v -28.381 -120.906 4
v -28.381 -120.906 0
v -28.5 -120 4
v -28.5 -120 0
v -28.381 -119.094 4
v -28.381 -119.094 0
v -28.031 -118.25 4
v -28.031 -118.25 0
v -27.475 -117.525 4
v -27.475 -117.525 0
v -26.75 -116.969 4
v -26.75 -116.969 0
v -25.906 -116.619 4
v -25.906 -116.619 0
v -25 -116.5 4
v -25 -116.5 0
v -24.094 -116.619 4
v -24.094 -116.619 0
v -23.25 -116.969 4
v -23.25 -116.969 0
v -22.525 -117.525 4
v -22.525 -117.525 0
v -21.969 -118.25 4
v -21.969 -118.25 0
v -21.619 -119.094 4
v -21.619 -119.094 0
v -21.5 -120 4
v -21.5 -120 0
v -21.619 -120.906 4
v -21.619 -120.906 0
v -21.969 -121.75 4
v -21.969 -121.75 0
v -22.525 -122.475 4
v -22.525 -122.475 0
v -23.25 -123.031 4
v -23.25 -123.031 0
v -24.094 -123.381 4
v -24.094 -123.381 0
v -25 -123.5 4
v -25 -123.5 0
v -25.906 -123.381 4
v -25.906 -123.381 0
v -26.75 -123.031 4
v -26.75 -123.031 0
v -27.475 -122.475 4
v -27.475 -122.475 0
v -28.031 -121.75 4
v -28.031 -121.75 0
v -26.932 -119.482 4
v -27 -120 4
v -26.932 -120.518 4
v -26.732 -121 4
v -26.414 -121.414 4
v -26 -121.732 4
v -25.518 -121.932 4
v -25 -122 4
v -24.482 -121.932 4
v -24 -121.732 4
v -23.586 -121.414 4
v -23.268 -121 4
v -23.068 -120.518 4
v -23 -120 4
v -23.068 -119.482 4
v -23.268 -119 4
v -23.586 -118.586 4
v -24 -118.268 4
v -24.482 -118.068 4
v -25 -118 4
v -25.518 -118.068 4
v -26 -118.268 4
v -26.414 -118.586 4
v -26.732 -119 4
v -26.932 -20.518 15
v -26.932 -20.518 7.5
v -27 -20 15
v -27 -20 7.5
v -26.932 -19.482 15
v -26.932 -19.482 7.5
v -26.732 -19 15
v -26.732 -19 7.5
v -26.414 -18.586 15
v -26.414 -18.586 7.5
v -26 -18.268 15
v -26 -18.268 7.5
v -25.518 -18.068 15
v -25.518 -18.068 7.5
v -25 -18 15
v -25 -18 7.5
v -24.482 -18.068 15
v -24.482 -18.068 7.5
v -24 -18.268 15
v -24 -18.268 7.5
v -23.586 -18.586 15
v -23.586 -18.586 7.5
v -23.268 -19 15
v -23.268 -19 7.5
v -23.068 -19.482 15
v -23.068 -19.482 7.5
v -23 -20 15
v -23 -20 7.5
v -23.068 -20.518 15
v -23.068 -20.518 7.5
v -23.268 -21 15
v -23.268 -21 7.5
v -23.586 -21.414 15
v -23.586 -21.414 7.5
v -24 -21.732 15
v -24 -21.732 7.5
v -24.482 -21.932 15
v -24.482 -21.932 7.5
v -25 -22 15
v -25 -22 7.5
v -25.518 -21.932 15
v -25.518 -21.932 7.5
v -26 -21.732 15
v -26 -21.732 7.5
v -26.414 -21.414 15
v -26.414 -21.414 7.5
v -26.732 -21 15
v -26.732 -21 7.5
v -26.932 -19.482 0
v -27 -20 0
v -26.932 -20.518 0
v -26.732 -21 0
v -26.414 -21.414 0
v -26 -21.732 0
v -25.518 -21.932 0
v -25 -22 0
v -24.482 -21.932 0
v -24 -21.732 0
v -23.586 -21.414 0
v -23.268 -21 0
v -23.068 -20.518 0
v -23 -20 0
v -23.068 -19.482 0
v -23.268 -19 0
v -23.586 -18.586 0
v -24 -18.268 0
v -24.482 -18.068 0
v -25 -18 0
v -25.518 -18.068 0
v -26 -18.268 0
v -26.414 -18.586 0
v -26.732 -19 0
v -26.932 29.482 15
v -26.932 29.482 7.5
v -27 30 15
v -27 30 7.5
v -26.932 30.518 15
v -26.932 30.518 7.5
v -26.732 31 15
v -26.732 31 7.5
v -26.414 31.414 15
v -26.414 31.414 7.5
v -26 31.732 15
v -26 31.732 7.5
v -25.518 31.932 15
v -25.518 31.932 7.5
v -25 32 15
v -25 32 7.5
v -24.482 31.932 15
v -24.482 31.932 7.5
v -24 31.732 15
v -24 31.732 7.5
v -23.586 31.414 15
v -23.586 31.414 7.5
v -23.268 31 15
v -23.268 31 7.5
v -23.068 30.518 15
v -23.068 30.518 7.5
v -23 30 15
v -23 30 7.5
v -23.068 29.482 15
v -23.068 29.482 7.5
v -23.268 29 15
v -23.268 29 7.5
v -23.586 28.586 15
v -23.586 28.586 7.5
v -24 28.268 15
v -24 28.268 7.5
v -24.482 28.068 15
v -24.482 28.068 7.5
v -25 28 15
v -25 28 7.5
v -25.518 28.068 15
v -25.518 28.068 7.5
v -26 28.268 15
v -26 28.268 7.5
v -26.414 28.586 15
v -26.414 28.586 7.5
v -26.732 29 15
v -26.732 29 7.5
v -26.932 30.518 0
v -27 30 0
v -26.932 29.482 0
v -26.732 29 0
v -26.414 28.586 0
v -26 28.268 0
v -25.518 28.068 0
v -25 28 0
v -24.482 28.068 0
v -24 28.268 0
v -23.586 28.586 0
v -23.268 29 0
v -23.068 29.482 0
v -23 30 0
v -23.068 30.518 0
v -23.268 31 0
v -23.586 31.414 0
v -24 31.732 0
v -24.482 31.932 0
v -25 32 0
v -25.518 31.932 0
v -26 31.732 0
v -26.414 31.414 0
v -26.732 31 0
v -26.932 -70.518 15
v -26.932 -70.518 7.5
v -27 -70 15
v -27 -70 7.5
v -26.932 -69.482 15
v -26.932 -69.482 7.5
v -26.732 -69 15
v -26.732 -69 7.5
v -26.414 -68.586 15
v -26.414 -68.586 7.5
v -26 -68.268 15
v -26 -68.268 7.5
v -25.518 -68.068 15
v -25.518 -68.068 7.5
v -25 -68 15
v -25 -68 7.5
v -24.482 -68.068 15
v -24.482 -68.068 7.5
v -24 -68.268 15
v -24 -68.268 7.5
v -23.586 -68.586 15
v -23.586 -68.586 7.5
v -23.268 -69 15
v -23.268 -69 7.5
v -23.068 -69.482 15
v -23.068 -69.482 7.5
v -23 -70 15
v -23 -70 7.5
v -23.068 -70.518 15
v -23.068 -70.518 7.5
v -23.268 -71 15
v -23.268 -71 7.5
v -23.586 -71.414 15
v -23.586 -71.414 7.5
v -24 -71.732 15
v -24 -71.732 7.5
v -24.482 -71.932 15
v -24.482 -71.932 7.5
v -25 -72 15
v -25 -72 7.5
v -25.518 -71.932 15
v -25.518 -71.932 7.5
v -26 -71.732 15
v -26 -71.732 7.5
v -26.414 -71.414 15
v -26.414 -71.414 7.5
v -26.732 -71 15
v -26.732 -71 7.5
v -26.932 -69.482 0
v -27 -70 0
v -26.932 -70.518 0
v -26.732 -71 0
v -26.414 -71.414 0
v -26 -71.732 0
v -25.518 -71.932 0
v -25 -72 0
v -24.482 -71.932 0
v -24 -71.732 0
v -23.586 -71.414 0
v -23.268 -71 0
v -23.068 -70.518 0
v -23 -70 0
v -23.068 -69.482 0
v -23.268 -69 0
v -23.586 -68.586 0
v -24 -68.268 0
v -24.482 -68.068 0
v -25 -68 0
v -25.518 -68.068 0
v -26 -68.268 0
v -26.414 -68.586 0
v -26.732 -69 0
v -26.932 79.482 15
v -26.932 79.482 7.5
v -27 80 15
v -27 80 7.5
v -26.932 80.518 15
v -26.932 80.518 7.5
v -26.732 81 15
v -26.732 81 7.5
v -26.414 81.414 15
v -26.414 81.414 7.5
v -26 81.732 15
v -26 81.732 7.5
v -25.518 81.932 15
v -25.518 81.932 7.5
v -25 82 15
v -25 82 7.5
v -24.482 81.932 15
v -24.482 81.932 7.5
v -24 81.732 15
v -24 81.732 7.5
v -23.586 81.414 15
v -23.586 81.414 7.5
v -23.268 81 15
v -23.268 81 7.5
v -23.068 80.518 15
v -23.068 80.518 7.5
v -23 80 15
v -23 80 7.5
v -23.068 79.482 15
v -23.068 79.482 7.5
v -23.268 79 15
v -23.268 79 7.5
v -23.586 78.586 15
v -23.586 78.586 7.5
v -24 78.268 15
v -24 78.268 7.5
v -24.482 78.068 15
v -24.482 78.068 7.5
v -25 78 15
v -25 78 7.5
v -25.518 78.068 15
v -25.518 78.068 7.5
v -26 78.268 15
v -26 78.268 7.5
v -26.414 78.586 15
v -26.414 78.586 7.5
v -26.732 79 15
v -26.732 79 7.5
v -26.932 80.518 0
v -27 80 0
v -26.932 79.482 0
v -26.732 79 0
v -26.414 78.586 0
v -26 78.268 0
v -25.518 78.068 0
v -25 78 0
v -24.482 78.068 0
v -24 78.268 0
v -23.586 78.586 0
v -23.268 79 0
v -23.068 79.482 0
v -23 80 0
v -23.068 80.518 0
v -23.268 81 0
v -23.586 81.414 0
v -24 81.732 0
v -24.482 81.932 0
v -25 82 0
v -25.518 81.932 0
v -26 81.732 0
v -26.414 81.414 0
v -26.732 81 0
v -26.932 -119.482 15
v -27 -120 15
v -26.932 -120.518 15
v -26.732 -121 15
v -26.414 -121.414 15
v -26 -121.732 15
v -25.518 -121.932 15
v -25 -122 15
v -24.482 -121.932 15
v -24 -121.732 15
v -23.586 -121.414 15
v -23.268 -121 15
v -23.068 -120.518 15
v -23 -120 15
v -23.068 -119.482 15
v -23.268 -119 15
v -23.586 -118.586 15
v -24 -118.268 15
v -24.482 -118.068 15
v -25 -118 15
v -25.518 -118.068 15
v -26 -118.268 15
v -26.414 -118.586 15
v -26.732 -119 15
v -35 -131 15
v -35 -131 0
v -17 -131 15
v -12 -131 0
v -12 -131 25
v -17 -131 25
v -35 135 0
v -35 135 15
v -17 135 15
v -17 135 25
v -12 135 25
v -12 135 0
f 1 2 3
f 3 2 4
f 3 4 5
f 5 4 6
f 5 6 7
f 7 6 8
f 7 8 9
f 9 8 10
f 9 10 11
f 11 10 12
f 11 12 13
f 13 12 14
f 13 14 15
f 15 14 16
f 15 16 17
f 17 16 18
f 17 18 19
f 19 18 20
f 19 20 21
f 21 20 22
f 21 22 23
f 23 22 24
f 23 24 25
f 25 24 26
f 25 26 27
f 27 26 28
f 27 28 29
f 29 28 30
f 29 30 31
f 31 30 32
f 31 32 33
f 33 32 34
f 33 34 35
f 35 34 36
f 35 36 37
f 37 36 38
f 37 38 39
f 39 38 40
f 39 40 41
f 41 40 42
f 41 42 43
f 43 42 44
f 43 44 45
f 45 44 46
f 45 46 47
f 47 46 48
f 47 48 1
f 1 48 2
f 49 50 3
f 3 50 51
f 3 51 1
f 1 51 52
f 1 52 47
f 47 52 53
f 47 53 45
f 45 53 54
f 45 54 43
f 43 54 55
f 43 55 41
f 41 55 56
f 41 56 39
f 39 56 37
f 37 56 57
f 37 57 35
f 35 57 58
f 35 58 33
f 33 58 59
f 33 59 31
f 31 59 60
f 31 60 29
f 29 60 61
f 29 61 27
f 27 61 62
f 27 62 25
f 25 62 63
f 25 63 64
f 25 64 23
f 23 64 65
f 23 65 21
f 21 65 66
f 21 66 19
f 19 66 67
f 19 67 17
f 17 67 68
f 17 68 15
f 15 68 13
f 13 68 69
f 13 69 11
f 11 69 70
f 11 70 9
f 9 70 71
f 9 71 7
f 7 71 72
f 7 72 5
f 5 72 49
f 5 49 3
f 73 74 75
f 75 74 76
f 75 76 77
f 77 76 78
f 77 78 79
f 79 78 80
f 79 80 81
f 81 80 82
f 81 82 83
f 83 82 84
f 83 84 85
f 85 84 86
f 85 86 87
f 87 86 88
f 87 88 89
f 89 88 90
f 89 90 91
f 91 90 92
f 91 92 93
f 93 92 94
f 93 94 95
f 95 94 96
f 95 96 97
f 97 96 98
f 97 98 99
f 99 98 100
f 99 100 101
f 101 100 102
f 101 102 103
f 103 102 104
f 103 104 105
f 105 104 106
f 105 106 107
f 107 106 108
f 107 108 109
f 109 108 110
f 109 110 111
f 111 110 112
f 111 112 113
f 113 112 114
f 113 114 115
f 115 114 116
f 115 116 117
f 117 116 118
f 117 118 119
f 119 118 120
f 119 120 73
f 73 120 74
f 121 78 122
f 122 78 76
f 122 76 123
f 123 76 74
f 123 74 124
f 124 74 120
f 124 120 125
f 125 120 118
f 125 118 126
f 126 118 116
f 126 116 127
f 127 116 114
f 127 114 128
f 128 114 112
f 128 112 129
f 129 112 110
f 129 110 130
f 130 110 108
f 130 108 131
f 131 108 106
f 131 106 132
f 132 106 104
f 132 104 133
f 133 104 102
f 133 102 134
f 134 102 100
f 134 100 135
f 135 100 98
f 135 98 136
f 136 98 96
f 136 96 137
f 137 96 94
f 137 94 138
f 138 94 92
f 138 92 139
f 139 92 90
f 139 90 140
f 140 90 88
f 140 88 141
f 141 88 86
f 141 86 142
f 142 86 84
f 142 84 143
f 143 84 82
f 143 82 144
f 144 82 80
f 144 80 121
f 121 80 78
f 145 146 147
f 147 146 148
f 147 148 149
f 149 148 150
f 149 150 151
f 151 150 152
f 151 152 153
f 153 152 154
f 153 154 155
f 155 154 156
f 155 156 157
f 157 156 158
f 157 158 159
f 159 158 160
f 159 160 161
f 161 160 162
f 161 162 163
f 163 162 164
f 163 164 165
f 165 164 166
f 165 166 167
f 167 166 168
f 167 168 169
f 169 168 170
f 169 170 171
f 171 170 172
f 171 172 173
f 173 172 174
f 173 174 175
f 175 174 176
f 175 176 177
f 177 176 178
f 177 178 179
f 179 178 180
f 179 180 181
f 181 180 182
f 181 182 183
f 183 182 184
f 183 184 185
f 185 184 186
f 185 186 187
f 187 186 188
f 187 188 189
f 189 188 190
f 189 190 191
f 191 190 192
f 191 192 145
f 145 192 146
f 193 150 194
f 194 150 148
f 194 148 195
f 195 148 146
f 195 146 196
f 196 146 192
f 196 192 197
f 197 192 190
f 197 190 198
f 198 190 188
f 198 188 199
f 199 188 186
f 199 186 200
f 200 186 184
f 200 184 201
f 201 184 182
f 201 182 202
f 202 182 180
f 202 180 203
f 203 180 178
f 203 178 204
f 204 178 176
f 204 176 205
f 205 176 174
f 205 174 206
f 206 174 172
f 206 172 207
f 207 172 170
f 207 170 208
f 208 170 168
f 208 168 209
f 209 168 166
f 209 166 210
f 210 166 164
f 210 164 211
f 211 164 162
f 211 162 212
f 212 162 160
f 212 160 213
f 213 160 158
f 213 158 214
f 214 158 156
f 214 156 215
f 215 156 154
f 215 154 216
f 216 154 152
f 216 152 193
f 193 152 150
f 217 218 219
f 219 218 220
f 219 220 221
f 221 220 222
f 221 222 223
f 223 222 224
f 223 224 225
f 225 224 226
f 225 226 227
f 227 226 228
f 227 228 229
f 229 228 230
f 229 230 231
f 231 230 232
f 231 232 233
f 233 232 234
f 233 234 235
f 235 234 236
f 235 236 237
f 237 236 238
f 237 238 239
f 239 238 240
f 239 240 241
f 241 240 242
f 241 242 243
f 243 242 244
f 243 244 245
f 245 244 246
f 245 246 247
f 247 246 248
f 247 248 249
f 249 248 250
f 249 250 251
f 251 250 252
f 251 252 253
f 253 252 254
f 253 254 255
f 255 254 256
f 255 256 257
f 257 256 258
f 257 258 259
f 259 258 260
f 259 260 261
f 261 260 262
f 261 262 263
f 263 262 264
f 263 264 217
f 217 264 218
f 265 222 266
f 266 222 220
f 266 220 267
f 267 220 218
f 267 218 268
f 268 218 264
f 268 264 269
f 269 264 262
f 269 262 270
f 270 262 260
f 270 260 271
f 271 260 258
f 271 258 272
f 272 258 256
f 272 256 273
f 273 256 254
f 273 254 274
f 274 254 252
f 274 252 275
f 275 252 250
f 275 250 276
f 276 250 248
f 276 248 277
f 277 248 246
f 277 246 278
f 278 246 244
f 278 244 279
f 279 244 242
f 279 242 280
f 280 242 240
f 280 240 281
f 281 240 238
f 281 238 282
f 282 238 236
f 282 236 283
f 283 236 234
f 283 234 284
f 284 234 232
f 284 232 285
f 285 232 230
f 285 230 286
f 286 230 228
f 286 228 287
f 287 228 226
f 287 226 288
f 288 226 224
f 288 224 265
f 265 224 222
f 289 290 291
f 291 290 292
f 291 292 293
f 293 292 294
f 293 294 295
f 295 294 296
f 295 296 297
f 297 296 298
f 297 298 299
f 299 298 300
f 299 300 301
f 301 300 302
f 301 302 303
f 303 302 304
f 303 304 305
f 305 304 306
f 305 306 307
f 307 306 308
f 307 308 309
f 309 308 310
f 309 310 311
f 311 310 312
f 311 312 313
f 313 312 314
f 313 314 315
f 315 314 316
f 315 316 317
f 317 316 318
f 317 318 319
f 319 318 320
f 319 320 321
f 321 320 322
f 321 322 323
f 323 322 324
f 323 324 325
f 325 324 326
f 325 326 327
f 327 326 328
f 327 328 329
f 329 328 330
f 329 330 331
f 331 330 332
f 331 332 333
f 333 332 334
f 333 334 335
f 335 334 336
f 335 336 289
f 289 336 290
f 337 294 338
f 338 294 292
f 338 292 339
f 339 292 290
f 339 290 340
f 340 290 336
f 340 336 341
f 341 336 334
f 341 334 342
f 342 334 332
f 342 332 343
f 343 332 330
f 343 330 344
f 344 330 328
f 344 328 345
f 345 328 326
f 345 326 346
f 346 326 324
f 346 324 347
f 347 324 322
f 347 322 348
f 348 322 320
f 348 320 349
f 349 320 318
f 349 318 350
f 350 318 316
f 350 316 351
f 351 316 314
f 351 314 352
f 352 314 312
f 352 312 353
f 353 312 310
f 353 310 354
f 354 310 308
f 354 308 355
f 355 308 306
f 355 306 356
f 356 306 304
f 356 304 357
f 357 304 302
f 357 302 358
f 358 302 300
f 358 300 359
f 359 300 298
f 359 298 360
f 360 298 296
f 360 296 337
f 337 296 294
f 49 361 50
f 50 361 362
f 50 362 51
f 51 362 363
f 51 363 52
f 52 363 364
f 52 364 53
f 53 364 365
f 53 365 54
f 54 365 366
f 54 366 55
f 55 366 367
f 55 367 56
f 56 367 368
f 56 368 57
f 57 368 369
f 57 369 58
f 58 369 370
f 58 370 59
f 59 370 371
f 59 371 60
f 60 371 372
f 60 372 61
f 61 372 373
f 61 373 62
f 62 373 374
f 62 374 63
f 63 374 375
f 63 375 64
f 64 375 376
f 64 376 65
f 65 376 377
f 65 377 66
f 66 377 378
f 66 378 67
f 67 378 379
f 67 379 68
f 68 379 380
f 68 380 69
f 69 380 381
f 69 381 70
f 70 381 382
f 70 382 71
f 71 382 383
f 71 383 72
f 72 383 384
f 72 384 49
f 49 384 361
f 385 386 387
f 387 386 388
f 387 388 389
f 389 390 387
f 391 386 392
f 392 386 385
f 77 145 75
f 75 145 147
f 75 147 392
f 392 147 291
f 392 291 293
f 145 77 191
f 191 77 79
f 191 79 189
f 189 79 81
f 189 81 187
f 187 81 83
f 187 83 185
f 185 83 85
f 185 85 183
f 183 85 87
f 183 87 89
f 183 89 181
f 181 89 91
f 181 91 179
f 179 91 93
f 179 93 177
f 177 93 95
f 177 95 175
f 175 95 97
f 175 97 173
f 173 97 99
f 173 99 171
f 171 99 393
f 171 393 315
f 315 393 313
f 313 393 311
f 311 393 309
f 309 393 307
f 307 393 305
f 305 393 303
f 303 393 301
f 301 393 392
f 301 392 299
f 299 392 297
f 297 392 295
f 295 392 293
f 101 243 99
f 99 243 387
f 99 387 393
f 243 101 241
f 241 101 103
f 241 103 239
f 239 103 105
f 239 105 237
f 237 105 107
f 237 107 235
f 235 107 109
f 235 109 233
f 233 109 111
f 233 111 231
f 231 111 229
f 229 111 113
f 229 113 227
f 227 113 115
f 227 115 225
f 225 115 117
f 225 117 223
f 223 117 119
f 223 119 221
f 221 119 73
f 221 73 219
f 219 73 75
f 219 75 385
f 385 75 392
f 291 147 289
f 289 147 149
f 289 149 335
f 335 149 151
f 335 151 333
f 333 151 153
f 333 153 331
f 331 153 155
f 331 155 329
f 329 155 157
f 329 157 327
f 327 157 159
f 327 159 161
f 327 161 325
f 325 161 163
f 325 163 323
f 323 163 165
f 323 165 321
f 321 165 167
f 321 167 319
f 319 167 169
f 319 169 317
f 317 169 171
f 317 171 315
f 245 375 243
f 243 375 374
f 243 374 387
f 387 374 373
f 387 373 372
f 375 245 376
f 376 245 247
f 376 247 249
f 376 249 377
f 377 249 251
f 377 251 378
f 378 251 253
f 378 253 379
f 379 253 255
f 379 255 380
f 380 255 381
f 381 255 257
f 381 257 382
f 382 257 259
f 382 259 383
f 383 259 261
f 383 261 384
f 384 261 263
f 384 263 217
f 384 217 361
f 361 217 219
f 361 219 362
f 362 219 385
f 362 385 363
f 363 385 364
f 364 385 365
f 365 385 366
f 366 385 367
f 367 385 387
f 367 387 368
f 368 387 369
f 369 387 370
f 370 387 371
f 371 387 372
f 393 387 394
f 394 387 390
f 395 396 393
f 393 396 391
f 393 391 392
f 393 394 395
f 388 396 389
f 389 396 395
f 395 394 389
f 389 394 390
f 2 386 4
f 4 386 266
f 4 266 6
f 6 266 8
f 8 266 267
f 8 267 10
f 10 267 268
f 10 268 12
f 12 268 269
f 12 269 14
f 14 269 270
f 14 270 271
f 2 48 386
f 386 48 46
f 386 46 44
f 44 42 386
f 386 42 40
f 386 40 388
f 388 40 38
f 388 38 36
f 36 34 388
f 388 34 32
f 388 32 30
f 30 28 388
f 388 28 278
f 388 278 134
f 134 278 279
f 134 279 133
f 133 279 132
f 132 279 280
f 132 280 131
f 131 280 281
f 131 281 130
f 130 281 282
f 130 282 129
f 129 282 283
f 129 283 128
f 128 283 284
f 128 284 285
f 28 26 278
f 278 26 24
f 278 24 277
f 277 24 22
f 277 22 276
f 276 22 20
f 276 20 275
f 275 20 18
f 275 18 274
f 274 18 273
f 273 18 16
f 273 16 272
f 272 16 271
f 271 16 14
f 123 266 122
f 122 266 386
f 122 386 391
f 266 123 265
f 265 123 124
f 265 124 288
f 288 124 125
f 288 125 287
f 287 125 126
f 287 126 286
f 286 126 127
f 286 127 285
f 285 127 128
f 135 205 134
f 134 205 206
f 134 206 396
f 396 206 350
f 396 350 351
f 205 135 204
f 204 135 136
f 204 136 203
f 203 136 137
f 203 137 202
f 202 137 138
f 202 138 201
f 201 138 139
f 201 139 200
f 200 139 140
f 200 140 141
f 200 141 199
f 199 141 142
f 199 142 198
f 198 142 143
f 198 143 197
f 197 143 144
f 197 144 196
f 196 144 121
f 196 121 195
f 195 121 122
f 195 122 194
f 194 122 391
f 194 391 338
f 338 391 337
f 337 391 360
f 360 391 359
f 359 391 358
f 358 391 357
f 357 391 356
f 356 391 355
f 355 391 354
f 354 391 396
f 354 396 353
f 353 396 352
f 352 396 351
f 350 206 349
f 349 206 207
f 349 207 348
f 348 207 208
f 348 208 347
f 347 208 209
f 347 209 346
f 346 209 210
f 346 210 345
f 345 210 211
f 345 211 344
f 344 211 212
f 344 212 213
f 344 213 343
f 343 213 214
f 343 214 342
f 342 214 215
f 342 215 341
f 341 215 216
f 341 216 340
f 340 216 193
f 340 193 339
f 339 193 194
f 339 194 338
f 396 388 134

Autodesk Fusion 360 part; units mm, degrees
sketch "Szkic1" plane through (0, 0, 0) normal (0, 0, 1) x (1, 0, 0)
  line L0 (45, 135) -> (-35, 135)
  line L1 (-35, 135) -> (-35, -130)
  line L2 (-35, -130) -> (45, -130)
  circle A0 centre (25, -120) radius 1.75
  circle A1 centre (-25, -120) radius 1.75
  circle A2 centre (-25, -70) radius 1.75
  circle A3 centre (-25, -20) radius 1.75
  circle A4 centre (-25, 30) radius 1.75
  circle A5 centre (-25, 80) radius 1.75
  circle A6 centre (-15, 125) radius 3.5
  circle A7 centre (20, 125) radius 3.5
  circle A8 centre (20, 105) radius 3.5
  circle A9 centre (-15, 105) radius 3.5
  line L3 (45, -130) -> (45, -105)
  line L4 (45, -105) -> (-35, -105)
  line L5 (-35, -105) -> (-35, -130)
  line L6 (-35, -130) -> (45, -130)
  line L7 (-35, -130) -> (-17, -130)
  line L8 (-17, -130) -> (-17, 135)
  line L9 (-17, 135) -> (-35, 135)
  line L10 (-35, 135) -> (-35, -130)
  line L11 (-17, 135) -> (-17, -130)
  line L12 (-17, -130) -> (-12, -130)
  line L13 (-12, -130) -> (-12, 135)
  line L14 (-12, 135) -> (-17, 135)
  dimension "d1" = 5
extrude "Wyciągnięcie proste1" add sketch "Szkic1" along normal blind 25 contours L0 A6 L8 L11 L13 L14 | A6 L8 L11 L13 | A6 A9 L8 L11 L13 | A9 L8 L11 L13 | A9 L4 L8 L11 L13
extrude "Wyciągnięcie proste2" add sketch "Szkic1" along normal blind 15 contours L0 L1 A6 A9 L4 L8 L9 L10 L11 | A6 L8 L11 | A9 L8 L11
extrude "Wyciągnięcie proste3" add 1 faces at (-21.3333, -105, 5) along direction (0, -1, 0) blind 26
extrude "Wyciągnięcie proste4" cut sketch "Szkic1" along normal blind 37 contours A1
sketch "Szkic2" plane through (0, 0, 0) normal (0, 0, -1) x (1, 0, 0)
  circle A0 centre (-25, 120) radius 1.75
  circle A1 centre (-25, -30) radius 1.75
  circle A2 centre (-25, -80) radius 1.75
  circle A3 centre (-25, 20) radius 1.75
  circle A4 centre (-25, 70) radius 1.75
  line L0 (-12, -135) -> (-12, 131)
  line L1 (-12, 131) -> (-35, 131)
  line L2 (-35, 131) -> (-35, -135)
  line L3 (-35, -135) -> (-12, -135)
  circle A5 centre (-25, 120) radius 2
  circle A6 centre (-25, 120) radius 3.5
  circle A7 centre (-25, 70) radius 2
  circle A8 centre (-25, 20) radius 2
  circle A9 centre (-25, -30) radius 2
  circle A10 centre (-25, -80) radius 2
  dimension "d10" = 4
  dimension "d11" = 7
  dimension "d12" = 4
  dimension "d13" = 4
  dimension "d14" = 4
  dimension "d15" = 4
extrude "Wyciągnięcie proste5" cut sketch "Szkic2" against normal blind 100 contours A5 | A7 | A8 | A9 | A10
extrude "Wyciągnięcie proste6" cut sketch "Szkic2" against normal blind 4 contours A6
